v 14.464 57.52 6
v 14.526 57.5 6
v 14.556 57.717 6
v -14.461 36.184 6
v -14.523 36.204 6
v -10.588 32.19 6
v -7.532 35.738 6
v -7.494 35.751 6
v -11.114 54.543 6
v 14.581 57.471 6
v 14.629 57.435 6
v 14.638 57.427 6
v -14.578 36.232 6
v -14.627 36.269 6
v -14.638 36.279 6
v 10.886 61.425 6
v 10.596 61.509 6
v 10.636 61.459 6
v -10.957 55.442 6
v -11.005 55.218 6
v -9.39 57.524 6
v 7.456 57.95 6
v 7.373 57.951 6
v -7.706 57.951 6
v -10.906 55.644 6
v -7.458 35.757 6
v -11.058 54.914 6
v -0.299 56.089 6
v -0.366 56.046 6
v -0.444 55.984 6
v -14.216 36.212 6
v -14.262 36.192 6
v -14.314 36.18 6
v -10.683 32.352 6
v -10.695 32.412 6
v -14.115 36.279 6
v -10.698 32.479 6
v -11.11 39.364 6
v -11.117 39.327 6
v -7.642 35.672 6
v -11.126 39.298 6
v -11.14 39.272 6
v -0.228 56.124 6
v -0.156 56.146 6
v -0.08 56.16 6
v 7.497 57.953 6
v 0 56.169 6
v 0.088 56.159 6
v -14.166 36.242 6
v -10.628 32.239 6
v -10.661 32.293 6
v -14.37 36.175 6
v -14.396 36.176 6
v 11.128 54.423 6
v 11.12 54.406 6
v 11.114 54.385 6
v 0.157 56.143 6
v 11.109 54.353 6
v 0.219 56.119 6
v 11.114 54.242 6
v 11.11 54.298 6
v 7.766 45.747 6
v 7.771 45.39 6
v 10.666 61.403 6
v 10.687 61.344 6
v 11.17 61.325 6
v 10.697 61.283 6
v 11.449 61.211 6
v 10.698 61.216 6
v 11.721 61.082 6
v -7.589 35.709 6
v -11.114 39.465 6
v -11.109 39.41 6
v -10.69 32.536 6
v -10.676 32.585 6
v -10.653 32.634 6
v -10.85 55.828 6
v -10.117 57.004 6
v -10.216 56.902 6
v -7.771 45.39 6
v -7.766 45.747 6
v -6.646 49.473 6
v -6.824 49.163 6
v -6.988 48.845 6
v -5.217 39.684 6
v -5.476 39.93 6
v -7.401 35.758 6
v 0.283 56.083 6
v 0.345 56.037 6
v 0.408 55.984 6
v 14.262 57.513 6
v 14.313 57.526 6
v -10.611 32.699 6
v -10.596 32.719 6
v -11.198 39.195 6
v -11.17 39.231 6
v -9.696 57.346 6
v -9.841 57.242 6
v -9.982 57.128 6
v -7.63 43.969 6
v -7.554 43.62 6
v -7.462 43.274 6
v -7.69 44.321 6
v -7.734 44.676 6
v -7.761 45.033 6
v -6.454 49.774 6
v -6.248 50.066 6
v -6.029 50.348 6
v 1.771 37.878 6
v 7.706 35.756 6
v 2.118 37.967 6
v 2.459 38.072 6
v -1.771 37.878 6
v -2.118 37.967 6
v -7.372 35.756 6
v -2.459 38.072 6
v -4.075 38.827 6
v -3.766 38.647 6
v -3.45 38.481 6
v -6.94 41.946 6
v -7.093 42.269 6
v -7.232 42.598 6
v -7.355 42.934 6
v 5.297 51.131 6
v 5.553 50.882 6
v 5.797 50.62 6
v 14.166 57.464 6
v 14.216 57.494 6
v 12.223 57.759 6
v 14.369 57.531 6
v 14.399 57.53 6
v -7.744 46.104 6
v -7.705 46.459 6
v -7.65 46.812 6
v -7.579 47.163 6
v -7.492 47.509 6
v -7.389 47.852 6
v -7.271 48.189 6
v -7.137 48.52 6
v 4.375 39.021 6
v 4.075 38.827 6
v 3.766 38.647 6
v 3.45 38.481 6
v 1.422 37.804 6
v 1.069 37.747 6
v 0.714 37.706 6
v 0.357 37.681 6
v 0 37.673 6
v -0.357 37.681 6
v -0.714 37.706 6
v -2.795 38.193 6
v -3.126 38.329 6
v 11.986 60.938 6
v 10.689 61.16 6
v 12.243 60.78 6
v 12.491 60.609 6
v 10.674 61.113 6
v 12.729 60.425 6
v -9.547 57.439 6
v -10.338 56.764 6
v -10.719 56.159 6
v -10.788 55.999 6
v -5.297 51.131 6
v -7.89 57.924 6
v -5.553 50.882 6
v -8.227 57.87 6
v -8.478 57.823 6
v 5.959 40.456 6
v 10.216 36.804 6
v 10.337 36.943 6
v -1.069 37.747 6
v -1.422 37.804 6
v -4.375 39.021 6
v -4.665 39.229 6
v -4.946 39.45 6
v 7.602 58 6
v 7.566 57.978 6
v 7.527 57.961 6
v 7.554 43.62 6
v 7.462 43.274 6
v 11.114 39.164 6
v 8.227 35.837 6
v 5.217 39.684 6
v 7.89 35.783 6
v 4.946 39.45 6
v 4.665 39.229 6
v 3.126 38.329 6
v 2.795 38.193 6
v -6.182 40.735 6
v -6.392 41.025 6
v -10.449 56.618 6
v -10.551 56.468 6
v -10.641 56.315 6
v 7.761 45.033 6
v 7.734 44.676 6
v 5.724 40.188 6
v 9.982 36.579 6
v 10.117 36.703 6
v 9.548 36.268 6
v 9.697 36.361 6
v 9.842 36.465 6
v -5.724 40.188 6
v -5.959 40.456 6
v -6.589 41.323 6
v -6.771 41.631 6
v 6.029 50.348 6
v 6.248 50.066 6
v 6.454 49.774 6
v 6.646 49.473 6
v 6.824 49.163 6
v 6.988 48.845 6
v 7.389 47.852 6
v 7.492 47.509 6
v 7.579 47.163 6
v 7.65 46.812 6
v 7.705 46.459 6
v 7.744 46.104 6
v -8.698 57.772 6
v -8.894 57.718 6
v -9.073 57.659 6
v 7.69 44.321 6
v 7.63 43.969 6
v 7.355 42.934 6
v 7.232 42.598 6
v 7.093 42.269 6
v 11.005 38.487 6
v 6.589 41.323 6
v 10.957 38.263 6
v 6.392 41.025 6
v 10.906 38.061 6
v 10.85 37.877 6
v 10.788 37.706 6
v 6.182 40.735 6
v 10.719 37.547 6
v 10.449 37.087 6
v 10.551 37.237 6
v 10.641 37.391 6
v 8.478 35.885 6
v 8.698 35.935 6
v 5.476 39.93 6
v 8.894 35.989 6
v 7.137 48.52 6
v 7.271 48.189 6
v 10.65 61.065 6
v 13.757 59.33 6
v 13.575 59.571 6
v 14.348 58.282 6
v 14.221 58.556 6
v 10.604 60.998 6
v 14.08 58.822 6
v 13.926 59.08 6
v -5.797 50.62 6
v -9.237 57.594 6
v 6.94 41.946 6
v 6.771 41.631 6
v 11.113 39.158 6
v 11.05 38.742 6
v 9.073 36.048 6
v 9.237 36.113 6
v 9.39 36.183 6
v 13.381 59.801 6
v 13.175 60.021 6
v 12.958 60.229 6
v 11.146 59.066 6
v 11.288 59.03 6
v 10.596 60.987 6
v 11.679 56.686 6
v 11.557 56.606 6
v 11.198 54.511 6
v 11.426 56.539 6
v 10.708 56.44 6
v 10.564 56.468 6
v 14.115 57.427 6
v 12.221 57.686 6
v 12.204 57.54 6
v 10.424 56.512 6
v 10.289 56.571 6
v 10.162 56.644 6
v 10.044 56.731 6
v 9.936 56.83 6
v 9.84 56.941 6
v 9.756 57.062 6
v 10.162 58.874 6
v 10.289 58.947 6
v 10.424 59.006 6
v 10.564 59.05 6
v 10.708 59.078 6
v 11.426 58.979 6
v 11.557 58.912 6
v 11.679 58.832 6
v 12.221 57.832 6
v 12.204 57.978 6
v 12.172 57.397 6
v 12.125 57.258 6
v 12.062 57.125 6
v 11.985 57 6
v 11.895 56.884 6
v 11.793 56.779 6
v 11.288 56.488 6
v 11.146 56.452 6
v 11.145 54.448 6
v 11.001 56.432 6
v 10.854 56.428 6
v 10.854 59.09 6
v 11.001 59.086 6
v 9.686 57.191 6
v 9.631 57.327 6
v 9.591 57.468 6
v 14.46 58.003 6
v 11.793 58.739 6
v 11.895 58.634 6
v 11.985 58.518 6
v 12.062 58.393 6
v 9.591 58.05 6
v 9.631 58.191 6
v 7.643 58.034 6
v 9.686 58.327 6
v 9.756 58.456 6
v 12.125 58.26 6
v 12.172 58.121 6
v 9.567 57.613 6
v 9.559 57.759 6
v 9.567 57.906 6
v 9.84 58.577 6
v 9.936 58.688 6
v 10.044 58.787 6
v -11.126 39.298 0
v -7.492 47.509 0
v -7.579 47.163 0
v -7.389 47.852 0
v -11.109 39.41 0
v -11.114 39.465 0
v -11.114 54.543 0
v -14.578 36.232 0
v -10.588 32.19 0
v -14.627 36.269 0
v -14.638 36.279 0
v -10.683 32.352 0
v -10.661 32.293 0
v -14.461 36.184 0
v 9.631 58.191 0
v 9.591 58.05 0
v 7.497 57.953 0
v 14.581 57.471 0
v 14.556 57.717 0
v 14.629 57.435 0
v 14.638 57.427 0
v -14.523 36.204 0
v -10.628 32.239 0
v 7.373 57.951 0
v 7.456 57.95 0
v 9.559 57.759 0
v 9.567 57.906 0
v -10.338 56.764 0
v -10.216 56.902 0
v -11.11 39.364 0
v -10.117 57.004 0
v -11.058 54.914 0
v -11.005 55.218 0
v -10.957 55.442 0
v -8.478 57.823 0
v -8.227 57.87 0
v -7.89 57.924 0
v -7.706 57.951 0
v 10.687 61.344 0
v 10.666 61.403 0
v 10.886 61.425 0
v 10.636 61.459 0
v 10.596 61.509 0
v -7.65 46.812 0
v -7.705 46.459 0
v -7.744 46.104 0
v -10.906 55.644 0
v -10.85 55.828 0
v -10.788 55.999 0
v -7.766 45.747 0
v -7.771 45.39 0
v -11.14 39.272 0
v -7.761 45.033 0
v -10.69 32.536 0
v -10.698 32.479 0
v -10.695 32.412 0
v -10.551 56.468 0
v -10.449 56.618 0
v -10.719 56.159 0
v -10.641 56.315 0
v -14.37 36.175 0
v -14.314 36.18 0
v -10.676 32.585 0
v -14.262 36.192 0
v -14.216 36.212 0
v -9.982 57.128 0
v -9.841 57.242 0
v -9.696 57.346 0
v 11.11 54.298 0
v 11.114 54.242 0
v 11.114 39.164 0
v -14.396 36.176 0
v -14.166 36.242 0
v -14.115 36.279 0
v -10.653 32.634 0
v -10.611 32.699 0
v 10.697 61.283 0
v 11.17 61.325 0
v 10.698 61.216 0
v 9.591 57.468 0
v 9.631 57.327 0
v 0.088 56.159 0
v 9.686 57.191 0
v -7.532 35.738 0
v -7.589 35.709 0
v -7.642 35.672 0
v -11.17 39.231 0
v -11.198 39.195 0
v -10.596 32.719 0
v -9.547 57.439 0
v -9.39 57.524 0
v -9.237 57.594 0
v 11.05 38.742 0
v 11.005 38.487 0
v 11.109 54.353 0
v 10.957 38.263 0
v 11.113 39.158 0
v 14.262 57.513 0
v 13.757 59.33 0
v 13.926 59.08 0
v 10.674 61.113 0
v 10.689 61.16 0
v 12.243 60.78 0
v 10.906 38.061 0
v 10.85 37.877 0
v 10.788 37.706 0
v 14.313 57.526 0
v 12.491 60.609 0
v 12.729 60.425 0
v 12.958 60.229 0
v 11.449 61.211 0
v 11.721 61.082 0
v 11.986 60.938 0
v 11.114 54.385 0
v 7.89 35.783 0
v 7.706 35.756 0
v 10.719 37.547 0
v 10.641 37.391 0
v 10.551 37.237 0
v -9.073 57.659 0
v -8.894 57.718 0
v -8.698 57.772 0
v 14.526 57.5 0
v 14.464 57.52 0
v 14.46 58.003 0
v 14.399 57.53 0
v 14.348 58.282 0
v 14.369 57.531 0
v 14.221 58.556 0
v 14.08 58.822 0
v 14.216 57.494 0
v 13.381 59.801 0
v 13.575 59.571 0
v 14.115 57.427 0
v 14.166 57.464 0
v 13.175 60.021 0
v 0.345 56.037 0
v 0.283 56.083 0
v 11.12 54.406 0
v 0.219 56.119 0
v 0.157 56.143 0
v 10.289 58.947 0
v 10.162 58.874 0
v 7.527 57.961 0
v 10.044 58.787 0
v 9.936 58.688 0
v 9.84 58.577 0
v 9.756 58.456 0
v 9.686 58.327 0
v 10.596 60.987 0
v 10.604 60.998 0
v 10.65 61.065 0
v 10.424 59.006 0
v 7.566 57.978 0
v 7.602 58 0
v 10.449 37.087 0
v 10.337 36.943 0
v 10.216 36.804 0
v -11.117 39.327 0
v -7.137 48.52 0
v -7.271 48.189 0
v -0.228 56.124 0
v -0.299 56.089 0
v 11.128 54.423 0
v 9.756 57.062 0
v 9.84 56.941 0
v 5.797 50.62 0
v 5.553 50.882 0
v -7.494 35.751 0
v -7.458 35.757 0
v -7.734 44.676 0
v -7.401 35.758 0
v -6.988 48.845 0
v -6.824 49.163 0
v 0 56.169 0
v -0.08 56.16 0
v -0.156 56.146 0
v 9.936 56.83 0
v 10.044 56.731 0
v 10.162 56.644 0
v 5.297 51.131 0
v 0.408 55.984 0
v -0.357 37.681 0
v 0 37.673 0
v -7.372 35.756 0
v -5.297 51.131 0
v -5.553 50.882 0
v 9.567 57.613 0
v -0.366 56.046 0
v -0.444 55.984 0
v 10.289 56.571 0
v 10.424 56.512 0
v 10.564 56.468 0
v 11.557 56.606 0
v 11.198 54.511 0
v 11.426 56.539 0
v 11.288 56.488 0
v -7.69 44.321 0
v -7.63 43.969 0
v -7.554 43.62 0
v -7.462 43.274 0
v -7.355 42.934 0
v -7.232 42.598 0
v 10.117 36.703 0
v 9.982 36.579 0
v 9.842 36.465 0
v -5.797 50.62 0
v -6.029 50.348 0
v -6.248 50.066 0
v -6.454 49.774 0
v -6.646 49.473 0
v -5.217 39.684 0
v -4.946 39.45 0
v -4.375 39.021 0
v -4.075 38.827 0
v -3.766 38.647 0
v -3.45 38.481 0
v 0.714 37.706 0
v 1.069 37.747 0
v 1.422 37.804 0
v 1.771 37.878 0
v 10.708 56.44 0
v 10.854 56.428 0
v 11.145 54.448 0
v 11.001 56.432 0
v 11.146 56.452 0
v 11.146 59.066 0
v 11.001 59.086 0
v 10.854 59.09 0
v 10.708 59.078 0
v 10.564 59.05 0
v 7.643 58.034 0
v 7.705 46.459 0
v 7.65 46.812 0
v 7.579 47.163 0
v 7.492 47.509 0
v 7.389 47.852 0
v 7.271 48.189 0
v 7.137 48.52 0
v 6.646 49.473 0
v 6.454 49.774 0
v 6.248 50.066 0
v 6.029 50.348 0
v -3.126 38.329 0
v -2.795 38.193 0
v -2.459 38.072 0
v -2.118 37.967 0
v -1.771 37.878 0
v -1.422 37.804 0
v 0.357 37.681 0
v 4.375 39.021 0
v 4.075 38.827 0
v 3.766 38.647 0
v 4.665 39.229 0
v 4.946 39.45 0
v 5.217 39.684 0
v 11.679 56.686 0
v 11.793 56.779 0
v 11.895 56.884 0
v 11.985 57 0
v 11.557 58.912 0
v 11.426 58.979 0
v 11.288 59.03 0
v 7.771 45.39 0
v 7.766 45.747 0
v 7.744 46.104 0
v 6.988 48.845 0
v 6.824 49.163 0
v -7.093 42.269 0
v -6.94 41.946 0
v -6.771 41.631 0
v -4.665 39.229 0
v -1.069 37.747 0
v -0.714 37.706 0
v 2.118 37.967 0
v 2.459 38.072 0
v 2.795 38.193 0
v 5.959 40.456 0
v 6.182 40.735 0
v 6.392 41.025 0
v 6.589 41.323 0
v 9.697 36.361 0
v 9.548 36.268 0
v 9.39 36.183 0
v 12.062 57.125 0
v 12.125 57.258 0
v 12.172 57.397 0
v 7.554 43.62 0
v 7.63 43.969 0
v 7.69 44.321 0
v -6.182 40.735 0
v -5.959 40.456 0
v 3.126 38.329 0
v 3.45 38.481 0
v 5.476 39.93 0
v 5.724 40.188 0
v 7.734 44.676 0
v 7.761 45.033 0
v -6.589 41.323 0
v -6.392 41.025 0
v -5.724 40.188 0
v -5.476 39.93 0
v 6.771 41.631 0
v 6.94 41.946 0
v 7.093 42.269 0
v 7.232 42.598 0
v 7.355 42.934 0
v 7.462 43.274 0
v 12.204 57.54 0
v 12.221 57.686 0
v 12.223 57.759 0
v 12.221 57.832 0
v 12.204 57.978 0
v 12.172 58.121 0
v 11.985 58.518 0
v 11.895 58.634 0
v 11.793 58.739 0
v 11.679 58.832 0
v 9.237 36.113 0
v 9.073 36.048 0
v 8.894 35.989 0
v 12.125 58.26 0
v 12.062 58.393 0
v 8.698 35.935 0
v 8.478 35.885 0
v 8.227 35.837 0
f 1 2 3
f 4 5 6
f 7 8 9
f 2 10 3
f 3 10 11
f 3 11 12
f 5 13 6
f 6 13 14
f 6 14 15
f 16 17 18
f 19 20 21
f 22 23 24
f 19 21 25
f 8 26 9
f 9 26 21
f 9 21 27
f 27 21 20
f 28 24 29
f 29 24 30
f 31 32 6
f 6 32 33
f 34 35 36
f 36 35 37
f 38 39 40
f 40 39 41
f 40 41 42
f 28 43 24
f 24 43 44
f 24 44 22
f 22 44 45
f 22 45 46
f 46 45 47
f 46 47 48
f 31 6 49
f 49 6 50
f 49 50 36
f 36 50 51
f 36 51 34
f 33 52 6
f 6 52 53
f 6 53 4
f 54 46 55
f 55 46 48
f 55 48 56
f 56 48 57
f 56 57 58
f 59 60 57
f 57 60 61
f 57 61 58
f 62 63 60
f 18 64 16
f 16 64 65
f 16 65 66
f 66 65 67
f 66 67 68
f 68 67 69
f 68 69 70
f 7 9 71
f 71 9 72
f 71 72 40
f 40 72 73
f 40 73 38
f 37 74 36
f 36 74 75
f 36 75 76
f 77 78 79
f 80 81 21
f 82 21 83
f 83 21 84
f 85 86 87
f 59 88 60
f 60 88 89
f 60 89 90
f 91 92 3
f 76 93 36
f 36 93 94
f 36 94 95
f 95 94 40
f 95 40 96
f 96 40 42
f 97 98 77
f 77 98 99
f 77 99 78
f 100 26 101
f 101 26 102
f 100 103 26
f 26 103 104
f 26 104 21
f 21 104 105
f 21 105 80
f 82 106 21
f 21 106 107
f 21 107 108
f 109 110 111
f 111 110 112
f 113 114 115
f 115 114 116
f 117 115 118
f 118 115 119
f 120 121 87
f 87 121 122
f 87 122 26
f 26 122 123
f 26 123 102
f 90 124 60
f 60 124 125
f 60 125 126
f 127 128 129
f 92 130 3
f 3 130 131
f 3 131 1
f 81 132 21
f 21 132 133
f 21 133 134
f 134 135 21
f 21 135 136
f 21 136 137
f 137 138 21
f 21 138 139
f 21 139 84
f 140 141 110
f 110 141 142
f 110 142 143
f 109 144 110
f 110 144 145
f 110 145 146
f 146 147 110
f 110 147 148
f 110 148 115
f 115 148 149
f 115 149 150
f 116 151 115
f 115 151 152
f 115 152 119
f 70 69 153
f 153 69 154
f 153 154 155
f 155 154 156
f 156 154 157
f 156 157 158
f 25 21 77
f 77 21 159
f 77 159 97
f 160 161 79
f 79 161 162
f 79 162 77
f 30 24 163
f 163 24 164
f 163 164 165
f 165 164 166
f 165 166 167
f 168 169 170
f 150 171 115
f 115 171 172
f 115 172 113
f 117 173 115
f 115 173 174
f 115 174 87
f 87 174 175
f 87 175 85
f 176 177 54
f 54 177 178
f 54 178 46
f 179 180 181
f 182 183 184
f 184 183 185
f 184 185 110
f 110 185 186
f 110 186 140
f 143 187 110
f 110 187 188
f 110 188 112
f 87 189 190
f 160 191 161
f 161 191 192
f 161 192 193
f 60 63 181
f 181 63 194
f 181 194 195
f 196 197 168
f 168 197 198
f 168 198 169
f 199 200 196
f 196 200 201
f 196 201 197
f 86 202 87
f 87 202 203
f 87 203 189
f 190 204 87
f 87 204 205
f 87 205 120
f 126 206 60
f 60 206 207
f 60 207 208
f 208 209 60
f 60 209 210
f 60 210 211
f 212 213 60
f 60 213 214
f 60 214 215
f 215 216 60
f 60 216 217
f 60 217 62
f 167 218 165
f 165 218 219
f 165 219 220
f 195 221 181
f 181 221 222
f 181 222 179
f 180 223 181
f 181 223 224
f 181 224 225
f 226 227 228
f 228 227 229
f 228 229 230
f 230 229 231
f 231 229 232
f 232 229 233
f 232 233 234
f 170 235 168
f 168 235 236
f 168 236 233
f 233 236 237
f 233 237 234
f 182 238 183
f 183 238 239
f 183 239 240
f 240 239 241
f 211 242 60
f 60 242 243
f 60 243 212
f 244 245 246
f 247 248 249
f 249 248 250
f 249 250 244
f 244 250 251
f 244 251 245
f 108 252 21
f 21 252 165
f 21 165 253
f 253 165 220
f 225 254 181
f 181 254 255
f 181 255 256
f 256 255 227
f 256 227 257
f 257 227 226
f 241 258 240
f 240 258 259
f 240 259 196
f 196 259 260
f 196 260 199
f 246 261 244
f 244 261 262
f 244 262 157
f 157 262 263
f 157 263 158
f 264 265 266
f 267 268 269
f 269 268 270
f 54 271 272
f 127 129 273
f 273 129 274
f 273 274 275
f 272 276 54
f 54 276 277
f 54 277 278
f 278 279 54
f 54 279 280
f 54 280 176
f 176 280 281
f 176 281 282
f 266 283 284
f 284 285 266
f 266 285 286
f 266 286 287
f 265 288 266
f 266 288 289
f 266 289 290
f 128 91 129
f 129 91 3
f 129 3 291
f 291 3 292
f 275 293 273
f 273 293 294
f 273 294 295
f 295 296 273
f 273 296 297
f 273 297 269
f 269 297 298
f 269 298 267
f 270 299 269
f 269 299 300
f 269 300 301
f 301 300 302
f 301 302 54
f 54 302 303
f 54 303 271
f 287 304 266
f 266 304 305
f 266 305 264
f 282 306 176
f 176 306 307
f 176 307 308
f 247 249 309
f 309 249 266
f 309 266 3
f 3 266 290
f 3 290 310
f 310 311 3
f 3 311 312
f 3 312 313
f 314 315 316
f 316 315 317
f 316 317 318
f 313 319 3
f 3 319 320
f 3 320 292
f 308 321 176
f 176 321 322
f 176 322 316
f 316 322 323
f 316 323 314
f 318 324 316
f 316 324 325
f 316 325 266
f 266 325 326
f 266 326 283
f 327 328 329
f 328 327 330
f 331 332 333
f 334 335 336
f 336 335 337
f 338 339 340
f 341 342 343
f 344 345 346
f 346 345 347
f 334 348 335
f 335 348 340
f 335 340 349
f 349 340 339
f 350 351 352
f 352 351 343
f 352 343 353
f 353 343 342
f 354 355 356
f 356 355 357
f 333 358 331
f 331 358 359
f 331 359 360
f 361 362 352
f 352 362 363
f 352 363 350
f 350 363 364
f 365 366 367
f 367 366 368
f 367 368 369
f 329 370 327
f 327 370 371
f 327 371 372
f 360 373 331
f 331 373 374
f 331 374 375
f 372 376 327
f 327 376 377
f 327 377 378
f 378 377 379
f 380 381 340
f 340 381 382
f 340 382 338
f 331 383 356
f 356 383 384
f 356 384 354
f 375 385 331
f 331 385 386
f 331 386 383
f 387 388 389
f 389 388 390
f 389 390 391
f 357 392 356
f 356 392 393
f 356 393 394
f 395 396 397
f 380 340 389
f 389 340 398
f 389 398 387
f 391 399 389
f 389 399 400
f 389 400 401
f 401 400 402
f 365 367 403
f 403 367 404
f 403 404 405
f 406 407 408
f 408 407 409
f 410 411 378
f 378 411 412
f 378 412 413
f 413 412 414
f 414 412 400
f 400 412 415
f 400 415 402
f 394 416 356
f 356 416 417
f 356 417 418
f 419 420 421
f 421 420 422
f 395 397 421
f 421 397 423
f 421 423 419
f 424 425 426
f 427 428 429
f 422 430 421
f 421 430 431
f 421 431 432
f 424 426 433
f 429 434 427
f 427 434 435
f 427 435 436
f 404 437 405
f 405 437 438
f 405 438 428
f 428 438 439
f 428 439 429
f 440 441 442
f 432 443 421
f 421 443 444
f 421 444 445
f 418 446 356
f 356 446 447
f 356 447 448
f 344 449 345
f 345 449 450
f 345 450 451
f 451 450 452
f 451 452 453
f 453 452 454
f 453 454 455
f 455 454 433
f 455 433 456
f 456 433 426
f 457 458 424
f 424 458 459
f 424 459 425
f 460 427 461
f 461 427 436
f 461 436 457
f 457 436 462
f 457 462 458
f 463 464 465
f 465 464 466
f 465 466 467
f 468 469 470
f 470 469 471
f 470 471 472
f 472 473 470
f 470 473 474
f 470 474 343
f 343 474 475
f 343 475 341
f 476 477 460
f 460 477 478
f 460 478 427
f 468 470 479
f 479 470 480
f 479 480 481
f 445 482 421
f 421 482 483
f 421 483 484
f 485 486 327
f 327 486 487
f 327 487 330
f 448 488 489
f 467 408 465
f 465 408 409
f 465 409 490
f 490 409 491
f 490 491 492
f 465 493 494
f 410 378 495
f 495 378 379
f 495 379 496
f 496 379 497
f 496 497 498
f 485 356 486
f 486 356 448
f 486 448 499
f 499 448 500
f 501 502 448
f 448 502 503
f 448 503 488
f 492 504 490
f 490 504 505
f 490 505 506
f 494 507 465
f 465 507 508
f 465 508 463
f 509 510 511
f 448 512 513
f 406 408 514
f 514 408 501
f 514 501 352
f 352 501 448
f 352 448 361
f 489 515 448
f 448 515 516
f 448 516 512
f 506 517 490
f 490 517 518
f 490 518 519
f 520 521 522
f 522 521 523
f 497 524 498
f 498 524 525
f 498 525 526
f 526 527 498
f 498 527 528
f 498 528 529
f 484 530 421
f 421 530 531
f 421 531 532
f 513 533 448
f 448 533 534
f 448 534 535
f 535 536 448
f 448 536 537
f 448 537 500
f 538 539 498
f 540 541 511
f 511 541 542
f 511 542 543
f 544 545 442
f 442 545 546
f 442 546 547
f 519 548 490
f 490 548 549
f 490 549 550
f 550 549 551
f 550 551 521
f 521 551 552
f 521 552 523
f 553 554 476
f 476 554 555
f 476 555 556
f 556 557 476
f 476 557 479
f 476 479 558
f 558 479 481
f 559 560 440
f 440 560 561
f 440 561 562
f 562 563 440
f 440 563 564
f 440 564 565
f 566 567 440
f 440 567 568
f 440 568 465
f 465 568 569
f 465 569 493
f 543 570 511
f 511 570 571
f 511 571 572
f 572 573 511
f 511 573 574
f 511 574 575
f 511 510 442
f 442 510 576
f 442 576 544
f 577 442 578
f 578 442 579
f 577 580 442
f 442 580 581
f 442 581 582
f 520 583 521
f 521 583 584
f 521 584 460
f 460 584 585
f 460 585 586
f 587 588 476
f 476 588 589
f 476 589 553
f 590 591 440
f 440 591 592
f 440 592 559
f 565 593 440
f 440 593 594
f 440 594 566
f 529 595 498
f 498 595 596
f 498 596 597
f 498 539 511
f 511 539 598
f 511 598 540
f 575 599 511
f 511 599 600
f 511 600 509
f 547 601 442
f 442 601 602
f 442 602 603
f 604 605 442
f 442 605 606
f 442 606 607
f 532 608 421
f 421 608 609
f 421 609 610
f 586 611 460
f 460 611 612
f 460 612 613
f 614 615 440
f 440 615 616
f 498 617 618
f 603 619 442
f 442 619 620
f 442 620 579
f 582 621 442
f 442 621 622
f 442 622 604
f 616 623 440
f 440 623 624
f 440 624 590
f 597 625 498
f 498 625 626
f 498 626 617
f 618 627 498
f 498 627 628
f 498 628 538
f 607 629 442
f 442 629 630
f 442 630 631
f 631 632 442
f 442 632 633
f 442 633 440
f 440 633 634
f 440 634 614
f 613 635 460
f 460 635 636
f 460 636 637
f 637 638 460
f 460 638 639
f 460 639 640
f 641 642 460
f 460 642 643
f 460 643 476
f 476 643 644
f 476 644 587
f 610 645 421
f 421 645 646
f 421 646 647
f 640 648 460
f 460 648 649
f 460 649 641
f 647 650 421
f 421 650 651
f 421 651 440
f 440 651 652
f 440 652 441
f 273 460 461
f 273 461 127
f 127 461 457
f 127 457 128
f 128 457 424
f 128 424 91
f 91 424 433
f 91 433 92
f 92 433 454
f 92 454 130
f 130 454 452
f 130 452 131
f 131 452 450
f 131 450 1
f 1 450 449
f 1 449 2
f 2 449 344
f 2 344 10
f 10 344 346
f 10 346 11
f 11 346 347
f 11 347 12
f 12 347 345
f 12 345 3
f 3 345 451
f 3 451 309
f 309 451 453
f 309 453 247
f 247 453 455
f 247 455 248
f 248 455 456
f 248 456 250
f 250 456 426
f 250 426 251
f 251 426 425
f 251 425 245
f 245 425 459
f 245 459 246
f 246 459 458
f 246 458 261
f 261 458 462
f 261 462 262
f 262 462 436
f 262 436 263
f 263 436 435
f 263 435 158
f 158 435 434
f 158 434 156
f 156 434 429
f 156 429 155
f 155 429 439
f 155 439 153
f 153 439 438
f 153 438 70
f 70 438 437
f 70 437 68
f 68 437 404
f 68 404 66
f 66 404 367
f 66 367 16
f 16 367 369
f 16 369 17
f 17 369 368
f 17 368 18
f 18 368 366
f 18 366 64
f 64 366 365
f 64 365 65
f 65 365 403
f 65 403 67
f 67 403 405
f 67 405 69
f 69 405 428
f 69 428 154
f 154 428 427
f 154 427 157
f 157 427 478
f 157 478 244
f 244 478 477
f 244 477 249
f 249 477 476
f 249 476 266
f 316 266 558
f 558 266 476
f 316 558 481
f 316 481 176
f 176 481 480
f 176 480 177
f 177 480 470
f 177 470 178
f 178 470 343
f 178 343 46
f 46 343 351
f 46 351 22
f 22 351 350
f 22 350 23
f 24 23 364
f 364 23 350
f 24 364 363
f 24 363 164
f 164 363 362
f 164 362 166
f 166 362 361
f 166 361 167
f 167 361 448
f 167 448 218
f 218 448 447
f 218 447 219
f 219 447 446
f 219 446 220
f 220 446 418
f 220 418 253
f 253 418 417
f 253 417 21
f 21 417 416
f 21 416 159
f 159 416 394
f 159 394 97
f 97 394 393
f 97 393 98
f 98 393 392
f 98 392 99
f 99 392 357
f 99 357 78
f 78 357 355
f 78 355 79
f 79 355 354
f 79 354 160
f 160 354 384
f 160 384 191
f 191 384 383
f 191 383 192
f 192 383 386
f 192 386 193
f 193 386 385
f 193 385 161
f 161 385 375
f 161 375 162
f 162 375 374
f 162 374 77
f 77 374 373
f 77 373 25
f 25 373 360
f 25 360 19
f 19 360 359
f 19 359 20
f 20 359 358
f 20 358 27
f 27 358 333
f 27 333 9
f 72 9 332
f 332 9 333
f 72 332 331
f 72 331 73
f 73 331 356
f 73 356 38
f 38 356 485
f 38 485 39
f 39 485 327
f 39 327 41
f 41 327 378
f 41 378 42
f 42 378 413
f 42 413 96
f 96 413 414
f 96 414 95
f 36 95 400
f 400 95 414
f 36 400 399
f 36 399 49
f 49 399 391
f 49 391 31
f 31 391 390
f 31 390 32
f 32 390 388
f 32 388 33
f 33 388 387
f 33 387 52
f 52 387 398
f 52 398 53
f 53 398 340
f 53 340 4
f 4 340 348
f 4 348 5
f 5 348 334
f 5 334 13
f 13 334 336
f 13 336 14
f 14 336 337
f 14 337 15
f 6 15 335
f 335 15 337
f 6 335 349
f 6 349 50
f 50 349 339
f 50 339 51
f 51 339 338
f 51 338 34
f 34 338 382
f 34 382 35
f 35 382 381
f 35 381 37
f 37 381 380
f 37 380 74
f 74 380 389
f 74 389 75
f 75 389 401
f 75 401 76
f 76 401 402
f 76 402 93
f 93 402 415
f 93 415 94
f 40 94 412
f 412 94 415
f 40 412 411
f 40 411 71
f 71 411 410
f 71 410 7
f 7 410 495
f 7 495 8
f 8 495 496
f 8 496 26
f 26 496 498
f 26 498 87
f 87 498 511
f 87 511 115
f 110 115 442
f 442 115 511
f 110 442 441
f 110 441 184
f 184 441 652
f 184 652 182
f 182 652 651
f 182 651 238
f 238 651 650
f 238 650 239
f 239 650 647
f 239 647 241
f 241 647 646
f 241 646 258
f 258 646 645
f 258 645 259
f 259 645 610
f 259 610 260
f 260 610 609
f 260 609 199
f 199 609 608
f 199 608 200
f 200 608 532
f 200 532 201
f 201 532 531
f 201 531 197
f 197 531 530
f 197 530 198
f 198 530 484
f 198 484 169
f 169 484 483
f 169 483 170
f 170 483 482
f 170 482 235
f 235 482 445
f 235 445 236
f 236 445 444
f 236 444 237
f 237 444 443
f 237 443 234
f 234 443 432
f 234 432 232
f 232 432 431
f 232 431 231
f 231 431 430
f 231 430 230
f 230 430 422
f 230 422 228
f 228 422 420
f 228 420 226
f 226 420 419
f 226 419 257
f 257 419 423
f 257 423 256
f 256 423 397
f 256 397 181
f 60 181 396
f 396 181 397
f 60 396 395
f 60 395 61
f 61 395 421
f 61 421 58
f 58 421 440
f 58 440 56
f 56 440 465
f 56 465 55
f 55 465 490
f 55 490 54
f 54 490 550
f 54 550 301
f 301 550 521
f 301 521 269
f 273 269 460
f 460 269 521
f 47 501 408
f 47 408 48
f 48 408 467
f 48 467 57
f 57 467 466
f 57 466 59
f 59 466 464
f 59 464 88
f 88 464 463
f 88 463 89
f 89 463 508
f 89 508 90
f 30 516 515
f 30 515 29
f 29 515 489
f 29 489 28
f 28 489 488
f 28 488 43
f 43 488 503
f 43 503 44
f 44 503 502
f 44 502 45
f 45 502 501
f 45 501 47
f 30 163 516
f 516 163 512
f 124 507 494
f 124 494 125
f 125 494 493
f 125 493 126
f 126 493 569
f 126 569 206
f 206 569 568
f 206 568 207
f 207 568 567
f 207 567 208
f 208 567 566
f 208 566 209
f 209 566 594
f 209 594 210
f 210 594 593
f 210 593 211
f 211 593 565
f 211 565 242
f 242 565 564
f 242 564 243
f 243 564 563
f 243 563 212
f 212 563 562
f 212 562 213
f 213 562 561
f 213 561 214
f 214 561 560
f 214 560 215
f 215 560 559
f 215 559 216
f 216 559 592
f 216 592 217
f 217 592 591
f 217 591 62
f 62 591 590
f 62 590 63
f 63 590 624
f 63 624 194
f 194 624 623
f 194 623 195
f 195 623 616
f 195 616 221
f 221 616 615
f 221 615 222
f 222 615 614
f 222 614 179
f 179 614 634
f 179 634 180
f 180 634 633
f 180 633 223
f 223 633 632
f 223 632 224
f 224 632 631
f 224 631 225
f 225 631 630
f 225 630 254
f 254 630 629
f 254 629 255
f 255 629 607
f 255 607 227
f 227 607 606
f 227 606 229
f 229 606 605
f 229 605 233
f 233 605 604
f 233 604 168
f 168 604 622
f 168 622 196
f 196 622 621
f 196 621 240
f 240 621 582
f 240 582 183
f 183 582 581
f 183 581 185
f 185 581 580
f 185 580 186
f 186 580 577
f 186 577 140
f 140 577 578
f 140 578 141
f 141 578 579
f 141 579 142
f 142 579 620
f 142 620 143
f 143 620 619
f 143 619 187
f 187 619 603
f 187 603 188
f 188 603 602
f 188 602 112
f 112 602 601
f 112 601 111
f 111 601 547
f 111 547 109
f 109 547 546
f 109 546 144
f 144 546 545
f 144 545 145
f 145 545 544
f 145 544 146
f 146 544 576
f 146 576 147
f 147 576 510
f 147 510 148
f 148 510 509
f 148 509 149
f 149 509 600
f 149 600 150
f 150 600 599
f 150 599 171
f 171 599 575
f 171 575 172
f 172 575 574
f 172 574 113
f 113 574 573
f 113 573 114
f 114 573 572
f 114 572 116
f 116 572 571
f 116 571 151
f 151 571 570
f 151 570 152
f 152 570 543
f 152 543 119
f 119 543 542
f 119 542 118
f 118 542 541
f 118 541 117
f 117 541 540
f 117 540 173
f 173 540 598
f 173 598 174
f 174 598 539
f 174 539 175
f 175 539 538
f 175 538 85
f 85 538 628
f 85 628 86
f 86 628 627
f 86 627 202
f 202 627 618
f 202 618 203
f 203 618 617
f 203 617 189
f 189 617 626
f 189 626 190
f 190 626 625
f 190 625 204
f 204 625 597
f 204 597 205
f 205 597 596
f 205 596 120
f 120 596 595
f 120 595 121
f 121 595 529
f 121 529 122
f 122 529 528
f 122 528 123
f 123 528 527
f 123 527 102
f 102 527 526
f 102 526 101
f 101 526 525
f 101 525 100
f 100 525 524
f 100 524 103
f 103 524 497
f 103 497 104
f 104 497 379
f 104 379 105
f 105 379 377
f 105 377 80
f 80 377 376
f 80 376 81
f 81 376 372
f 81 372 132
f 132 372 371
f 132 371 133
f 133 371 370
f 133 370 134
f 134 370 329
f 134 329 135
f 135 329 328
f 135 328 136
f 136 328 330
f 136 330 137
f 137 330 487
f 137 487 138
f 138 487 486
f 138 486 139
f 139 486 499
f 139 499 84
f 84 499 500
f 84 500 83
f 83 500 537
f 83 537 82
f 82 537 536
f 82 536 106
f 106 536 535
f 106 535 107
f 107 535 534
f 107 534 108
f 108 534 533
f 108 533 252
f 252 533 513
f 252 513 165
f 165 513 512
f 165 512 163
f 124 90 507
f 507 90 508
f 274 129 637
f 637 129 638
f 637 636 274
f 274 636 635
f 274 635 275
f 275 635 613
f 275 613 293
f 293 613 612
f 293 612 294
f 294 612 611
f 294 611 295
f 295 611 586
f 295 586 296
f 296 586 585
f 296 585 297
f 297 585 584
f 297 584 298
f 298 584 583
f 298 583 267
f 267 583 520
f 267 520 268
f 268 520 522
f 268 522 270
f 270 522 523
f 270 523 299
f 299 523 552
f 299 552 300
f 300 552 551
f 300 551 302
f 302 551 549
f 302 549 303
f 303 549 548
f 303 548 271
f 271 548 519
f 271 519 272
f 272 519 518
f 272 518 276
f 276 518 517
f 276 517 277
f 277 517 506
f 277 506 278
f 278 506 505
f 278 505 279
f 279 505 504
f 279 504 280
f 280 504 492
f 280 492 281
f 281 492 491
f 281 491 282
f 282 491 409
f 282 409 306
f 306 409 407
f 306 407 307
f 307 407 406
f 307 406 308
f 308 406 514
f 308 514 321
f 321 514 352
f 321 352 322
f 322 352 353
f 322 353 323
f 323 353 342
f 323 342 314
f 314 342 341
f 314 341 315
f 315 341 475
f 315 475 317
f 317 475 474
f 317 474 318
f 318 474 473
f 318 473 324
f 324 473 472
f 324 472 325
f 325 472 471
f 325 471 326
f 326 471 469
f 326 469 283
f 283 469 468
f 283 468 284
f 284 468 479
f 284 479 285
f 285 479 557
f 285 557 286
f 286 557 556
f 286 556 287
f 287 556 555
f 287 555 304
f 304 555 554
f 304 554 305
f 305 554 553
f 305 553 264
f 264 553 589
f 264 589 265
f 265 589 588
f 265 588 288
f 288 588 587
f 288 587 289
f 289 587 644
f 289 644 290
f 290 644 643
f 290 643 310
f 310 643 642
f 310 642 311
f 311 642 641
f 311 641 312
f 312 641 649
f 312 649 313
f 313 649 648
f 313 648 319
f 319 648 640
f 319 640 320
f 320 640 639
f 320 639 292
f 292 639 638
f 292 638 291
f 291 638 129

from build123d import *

# Parameters (mm, degrees)
SKETCH2_R           = 1.331799604
BOSS_EXTRUDE1_DEPTH = 6


with BuildPart() as part:
    # Sketch2 → Boss-Extrude1 (new body)
    with BuildSketch(Plane.XY):
        with BuildLine():
            Line((-7.706246934, 57.951214685), (7.372918204, 57.951214685))
            add(Edge.make_bspline(
                [(7.372918204, 57.951214685), (7.395110156, 57.950651705), (7.438614819, 57.949548051), (7.504225261, 57.950625459), (7.555781235, 57.971549168), (7.594142025, 57.993251928), (7.6196821, 58.014176428), (7.635431909, 58.027775879), (7.643125702, 58.03441922)],
                knots=[0, 0, 0, 0, 0.227492727, 0.445972237, 0.663373124, 0.787115425, 0.896005733, 1, 1, 1, 1], degree=3))
            Line((7.643125702, 58.03441922), (10.59644992, 60.987402087))
            add(Edge.make_bspline(
                [(10.59644992, 60.987402087), (10.625456983, 61.026663762), (10.683538077, 61.105277754), (10.707695299, 61.253447318), (10.680583073, 61.389397251), (10.630907962, 61.470381818), (10.600692174, 61.504449729), (10.59644991, 61.50900292)],
                knots=[0, 0, 0, 0, 0.104345134, 0.208931166, 0.313565445, 0.39799532, 0.411364921, 0.411364921, 0.411364921, 0.411364921], degree=3))
            ThreePointArc((10.59644991, 61.50900292), (13.175131131, 60.020629535), (14.637581092, 57.427158448))
            add(Edge.make_bspline(
                [(14.637581092, 57.427158448), (14.63281413, 57.431646623), (14.598617329, 57.462223659), (14.517454165, 57.512357762), (14.3814295, 57.53955279), (14.232961651, 57.515207684), (14.154478031, 57.456521872), (14.115208769, 57.42715844)],
                knots=[0.58753787, 0.58753787, 0.58753787, 0.58753787, 0.601601228, 0.686034701, 0.790672378, 0.895262972, 1, 1, 1, 1], degree=3))
            Line((14.115208769, 57.42715844), (11.198386433, 54.510673236))
            add(Edge.make_bspline(
                [(11.198386433, 54.510673236), (11.189737643, 54.50058532), (11.172712209, 54.480726918), (11.146988546, 54.45027591), (11.11992052, 54.414228702), (11.108014065, 54.36337785), (11.109113984, 54.30464265), (11.112305892, 54.263909284), (11.114003119, 54.242250215)],
                knots=[0, 0, 0, 0, 0.134581529, 0.264928249, 0.404990742, 0.58604785, 0.779890073, 1, 1, 1, 1], degree=3))
            Line((11.114003119, 54.242250215), (11.114003119, 39.164130765))
            add(Edge.make_bspline(
                [(11.114003119, 39.164130765), (11.026069958, 38.560039142), (10.85421565, 37.379418015), (9.491383713, 36.016723245), (8.31051879, 35.844259059), (7.706108935, 35.755985581)],
                knots=[0, 0, 0, 0, 0.33840601, 0.661371999, 1, 1, 1, 1], degree=3))
            Line((7.706108935, 35.755985581), (-7.3716965, 35.755985581))
            add(Edge.make_bspline(
                [(-7.3716965, 35.755985581), (-7.390791848, 35.757243364), (-7.42588813, 35.759555105), (-7.480435634, 35.756767712), (-7.526608025, 35.741130321), (-7.568839822, 35.721664455), (-7.605836087, 35.699368029), (-7.62980257, 35.681485074), (-7.642317826, 35.672146626)],
                knots=[0, 0, 0, 0, 0.196745559, 0.361608386, 0.557261599, 0.692766378, 0.839563136, 1, 1, 1, 1], degree=3))
            Line((-7.642317826, 35.672146626), (-10.595729808, 32.719076005))
            add(Edge.make_bspline(
                [(-10.595729808, 32.719076005), (-10.624701104, 32.679767795), (-10.682693852, 32.601083323), (-10.706716869, 32.452917901), (-10.679538616, 32.31693156), (-10.627669532, 32.232998542), (-10.594437458, 32.196738778), (-10.58754182, 32.189777291)],
                knots=[0, 0, 0, 0, 0.104384754, 0.208950226, 0.313569176, 0.398093487, 0.419151196, 0.419151196, 0.419151196, 0.419151196], degree=3))
            Line((-10.58754182, 32.189777291), (-14.637683818, 36.278595616))
            add(Edge.make_bspline(
                [(-14.637683818, 36.278595616), (-14.633122591, 36.274312936), (-14.5989743, 36.243764471), (-14.518175826, 36.193440108), (-14.381934797, 36.166179863), (-14.233405716, 36.190514922), (-14.154618978, 36.249229011), (-14.11521277, 36.278595623)],
                knots=[0.587566394, 0.587566394, 0.587566394, 0.587566394, 0.601007159, 0.685956809, 0.790142009, 0.895036806, 1, 1, 1, 1], degree=3))
            Line((-14.11521277, 36.278595623), (-11.198029632, 39.195441586))
            add(Edge.make_bspline(
                [(-11.198029632, 39.195441586), (-11.190093681, 39.205582441), (-11.174520458, 39.225482487), (-11.15027016, 39.255165521), (-11.125422855, 39.293499099), (-11.110689079, 39.344394677), (-11.107300881, 39.404327233), (-11.111709764, 39.443939019), (-11.114003119, 39.464543755)],
                knots=[0, 0, 0, 0, 0.131285455, 0.257629811, 0.390972346, 0.594165008, 0.788898108, 1, 1, 1, 1], degree=3))
            Line((-11.114003119, 39.464543755), (-11.114003119, 54.542930501))
            add(Edge.make_bspline(
                [(-11.114003119, 54.542930501), (-11.025772384, 55.146864843), (-10.853333144, 56.327201592), (-9.491346414, 57.690256382), (-8.310575854, 57.862869665), (-7.706246934, 57.951214685)],
                knots=[0, 0, 0, 0, 0.338409749, 0.6613922, 1, 1, 1, 1], degree=3))
        make_face()
        with Locations((10.890728729, 57.759012308)):
            Circle(SKETCH2_R, mode=Mode.SUBTRACT)
        with BuildLine():
            Line((-0.443808512, 55.984274583), (-5.297244805, 51.131120289))
            ThreePointArc((-5.297244805, 51.131120289), (0, 37.672973009), (5.297244805, 51.131120289))
            Line((5.297244805, 51.131120289), (0.407829784, 55.984274583))
            add(Edge.make_bspline(
                [(0.407829784, 55.984274583), (0.368694639, 56.018150383), (0.291347372, 56.085103007), (0.15161935, 56.154367662), (0.050542727, 56.164189345), (5.56e-05, 56.169095213)],
                knots=[0, 0, 0, 0, 0.338885039, 0.6697773, 1, 1, 1, 1], degree=3))
            add(Edge.make_bspline(
                [(5.56e-05, 56.169095213), (-0.05257804, 56.164008855), (-0.160972548, 56.153533933), (-0.315204963, 56.089735455), (-0.401165502, 56.019243828), (-0.443808512, 55.984274583)],
                knots=[0, 0, 0, 0, 0.322338023, 0.663827768, 1, 1, 1, 1], degree=3))
        make_face(mode=Mode.SUBTRACT)
    extrude(amount=BOSS_EXTRUDE1_DEPTH)


solid = part.part
